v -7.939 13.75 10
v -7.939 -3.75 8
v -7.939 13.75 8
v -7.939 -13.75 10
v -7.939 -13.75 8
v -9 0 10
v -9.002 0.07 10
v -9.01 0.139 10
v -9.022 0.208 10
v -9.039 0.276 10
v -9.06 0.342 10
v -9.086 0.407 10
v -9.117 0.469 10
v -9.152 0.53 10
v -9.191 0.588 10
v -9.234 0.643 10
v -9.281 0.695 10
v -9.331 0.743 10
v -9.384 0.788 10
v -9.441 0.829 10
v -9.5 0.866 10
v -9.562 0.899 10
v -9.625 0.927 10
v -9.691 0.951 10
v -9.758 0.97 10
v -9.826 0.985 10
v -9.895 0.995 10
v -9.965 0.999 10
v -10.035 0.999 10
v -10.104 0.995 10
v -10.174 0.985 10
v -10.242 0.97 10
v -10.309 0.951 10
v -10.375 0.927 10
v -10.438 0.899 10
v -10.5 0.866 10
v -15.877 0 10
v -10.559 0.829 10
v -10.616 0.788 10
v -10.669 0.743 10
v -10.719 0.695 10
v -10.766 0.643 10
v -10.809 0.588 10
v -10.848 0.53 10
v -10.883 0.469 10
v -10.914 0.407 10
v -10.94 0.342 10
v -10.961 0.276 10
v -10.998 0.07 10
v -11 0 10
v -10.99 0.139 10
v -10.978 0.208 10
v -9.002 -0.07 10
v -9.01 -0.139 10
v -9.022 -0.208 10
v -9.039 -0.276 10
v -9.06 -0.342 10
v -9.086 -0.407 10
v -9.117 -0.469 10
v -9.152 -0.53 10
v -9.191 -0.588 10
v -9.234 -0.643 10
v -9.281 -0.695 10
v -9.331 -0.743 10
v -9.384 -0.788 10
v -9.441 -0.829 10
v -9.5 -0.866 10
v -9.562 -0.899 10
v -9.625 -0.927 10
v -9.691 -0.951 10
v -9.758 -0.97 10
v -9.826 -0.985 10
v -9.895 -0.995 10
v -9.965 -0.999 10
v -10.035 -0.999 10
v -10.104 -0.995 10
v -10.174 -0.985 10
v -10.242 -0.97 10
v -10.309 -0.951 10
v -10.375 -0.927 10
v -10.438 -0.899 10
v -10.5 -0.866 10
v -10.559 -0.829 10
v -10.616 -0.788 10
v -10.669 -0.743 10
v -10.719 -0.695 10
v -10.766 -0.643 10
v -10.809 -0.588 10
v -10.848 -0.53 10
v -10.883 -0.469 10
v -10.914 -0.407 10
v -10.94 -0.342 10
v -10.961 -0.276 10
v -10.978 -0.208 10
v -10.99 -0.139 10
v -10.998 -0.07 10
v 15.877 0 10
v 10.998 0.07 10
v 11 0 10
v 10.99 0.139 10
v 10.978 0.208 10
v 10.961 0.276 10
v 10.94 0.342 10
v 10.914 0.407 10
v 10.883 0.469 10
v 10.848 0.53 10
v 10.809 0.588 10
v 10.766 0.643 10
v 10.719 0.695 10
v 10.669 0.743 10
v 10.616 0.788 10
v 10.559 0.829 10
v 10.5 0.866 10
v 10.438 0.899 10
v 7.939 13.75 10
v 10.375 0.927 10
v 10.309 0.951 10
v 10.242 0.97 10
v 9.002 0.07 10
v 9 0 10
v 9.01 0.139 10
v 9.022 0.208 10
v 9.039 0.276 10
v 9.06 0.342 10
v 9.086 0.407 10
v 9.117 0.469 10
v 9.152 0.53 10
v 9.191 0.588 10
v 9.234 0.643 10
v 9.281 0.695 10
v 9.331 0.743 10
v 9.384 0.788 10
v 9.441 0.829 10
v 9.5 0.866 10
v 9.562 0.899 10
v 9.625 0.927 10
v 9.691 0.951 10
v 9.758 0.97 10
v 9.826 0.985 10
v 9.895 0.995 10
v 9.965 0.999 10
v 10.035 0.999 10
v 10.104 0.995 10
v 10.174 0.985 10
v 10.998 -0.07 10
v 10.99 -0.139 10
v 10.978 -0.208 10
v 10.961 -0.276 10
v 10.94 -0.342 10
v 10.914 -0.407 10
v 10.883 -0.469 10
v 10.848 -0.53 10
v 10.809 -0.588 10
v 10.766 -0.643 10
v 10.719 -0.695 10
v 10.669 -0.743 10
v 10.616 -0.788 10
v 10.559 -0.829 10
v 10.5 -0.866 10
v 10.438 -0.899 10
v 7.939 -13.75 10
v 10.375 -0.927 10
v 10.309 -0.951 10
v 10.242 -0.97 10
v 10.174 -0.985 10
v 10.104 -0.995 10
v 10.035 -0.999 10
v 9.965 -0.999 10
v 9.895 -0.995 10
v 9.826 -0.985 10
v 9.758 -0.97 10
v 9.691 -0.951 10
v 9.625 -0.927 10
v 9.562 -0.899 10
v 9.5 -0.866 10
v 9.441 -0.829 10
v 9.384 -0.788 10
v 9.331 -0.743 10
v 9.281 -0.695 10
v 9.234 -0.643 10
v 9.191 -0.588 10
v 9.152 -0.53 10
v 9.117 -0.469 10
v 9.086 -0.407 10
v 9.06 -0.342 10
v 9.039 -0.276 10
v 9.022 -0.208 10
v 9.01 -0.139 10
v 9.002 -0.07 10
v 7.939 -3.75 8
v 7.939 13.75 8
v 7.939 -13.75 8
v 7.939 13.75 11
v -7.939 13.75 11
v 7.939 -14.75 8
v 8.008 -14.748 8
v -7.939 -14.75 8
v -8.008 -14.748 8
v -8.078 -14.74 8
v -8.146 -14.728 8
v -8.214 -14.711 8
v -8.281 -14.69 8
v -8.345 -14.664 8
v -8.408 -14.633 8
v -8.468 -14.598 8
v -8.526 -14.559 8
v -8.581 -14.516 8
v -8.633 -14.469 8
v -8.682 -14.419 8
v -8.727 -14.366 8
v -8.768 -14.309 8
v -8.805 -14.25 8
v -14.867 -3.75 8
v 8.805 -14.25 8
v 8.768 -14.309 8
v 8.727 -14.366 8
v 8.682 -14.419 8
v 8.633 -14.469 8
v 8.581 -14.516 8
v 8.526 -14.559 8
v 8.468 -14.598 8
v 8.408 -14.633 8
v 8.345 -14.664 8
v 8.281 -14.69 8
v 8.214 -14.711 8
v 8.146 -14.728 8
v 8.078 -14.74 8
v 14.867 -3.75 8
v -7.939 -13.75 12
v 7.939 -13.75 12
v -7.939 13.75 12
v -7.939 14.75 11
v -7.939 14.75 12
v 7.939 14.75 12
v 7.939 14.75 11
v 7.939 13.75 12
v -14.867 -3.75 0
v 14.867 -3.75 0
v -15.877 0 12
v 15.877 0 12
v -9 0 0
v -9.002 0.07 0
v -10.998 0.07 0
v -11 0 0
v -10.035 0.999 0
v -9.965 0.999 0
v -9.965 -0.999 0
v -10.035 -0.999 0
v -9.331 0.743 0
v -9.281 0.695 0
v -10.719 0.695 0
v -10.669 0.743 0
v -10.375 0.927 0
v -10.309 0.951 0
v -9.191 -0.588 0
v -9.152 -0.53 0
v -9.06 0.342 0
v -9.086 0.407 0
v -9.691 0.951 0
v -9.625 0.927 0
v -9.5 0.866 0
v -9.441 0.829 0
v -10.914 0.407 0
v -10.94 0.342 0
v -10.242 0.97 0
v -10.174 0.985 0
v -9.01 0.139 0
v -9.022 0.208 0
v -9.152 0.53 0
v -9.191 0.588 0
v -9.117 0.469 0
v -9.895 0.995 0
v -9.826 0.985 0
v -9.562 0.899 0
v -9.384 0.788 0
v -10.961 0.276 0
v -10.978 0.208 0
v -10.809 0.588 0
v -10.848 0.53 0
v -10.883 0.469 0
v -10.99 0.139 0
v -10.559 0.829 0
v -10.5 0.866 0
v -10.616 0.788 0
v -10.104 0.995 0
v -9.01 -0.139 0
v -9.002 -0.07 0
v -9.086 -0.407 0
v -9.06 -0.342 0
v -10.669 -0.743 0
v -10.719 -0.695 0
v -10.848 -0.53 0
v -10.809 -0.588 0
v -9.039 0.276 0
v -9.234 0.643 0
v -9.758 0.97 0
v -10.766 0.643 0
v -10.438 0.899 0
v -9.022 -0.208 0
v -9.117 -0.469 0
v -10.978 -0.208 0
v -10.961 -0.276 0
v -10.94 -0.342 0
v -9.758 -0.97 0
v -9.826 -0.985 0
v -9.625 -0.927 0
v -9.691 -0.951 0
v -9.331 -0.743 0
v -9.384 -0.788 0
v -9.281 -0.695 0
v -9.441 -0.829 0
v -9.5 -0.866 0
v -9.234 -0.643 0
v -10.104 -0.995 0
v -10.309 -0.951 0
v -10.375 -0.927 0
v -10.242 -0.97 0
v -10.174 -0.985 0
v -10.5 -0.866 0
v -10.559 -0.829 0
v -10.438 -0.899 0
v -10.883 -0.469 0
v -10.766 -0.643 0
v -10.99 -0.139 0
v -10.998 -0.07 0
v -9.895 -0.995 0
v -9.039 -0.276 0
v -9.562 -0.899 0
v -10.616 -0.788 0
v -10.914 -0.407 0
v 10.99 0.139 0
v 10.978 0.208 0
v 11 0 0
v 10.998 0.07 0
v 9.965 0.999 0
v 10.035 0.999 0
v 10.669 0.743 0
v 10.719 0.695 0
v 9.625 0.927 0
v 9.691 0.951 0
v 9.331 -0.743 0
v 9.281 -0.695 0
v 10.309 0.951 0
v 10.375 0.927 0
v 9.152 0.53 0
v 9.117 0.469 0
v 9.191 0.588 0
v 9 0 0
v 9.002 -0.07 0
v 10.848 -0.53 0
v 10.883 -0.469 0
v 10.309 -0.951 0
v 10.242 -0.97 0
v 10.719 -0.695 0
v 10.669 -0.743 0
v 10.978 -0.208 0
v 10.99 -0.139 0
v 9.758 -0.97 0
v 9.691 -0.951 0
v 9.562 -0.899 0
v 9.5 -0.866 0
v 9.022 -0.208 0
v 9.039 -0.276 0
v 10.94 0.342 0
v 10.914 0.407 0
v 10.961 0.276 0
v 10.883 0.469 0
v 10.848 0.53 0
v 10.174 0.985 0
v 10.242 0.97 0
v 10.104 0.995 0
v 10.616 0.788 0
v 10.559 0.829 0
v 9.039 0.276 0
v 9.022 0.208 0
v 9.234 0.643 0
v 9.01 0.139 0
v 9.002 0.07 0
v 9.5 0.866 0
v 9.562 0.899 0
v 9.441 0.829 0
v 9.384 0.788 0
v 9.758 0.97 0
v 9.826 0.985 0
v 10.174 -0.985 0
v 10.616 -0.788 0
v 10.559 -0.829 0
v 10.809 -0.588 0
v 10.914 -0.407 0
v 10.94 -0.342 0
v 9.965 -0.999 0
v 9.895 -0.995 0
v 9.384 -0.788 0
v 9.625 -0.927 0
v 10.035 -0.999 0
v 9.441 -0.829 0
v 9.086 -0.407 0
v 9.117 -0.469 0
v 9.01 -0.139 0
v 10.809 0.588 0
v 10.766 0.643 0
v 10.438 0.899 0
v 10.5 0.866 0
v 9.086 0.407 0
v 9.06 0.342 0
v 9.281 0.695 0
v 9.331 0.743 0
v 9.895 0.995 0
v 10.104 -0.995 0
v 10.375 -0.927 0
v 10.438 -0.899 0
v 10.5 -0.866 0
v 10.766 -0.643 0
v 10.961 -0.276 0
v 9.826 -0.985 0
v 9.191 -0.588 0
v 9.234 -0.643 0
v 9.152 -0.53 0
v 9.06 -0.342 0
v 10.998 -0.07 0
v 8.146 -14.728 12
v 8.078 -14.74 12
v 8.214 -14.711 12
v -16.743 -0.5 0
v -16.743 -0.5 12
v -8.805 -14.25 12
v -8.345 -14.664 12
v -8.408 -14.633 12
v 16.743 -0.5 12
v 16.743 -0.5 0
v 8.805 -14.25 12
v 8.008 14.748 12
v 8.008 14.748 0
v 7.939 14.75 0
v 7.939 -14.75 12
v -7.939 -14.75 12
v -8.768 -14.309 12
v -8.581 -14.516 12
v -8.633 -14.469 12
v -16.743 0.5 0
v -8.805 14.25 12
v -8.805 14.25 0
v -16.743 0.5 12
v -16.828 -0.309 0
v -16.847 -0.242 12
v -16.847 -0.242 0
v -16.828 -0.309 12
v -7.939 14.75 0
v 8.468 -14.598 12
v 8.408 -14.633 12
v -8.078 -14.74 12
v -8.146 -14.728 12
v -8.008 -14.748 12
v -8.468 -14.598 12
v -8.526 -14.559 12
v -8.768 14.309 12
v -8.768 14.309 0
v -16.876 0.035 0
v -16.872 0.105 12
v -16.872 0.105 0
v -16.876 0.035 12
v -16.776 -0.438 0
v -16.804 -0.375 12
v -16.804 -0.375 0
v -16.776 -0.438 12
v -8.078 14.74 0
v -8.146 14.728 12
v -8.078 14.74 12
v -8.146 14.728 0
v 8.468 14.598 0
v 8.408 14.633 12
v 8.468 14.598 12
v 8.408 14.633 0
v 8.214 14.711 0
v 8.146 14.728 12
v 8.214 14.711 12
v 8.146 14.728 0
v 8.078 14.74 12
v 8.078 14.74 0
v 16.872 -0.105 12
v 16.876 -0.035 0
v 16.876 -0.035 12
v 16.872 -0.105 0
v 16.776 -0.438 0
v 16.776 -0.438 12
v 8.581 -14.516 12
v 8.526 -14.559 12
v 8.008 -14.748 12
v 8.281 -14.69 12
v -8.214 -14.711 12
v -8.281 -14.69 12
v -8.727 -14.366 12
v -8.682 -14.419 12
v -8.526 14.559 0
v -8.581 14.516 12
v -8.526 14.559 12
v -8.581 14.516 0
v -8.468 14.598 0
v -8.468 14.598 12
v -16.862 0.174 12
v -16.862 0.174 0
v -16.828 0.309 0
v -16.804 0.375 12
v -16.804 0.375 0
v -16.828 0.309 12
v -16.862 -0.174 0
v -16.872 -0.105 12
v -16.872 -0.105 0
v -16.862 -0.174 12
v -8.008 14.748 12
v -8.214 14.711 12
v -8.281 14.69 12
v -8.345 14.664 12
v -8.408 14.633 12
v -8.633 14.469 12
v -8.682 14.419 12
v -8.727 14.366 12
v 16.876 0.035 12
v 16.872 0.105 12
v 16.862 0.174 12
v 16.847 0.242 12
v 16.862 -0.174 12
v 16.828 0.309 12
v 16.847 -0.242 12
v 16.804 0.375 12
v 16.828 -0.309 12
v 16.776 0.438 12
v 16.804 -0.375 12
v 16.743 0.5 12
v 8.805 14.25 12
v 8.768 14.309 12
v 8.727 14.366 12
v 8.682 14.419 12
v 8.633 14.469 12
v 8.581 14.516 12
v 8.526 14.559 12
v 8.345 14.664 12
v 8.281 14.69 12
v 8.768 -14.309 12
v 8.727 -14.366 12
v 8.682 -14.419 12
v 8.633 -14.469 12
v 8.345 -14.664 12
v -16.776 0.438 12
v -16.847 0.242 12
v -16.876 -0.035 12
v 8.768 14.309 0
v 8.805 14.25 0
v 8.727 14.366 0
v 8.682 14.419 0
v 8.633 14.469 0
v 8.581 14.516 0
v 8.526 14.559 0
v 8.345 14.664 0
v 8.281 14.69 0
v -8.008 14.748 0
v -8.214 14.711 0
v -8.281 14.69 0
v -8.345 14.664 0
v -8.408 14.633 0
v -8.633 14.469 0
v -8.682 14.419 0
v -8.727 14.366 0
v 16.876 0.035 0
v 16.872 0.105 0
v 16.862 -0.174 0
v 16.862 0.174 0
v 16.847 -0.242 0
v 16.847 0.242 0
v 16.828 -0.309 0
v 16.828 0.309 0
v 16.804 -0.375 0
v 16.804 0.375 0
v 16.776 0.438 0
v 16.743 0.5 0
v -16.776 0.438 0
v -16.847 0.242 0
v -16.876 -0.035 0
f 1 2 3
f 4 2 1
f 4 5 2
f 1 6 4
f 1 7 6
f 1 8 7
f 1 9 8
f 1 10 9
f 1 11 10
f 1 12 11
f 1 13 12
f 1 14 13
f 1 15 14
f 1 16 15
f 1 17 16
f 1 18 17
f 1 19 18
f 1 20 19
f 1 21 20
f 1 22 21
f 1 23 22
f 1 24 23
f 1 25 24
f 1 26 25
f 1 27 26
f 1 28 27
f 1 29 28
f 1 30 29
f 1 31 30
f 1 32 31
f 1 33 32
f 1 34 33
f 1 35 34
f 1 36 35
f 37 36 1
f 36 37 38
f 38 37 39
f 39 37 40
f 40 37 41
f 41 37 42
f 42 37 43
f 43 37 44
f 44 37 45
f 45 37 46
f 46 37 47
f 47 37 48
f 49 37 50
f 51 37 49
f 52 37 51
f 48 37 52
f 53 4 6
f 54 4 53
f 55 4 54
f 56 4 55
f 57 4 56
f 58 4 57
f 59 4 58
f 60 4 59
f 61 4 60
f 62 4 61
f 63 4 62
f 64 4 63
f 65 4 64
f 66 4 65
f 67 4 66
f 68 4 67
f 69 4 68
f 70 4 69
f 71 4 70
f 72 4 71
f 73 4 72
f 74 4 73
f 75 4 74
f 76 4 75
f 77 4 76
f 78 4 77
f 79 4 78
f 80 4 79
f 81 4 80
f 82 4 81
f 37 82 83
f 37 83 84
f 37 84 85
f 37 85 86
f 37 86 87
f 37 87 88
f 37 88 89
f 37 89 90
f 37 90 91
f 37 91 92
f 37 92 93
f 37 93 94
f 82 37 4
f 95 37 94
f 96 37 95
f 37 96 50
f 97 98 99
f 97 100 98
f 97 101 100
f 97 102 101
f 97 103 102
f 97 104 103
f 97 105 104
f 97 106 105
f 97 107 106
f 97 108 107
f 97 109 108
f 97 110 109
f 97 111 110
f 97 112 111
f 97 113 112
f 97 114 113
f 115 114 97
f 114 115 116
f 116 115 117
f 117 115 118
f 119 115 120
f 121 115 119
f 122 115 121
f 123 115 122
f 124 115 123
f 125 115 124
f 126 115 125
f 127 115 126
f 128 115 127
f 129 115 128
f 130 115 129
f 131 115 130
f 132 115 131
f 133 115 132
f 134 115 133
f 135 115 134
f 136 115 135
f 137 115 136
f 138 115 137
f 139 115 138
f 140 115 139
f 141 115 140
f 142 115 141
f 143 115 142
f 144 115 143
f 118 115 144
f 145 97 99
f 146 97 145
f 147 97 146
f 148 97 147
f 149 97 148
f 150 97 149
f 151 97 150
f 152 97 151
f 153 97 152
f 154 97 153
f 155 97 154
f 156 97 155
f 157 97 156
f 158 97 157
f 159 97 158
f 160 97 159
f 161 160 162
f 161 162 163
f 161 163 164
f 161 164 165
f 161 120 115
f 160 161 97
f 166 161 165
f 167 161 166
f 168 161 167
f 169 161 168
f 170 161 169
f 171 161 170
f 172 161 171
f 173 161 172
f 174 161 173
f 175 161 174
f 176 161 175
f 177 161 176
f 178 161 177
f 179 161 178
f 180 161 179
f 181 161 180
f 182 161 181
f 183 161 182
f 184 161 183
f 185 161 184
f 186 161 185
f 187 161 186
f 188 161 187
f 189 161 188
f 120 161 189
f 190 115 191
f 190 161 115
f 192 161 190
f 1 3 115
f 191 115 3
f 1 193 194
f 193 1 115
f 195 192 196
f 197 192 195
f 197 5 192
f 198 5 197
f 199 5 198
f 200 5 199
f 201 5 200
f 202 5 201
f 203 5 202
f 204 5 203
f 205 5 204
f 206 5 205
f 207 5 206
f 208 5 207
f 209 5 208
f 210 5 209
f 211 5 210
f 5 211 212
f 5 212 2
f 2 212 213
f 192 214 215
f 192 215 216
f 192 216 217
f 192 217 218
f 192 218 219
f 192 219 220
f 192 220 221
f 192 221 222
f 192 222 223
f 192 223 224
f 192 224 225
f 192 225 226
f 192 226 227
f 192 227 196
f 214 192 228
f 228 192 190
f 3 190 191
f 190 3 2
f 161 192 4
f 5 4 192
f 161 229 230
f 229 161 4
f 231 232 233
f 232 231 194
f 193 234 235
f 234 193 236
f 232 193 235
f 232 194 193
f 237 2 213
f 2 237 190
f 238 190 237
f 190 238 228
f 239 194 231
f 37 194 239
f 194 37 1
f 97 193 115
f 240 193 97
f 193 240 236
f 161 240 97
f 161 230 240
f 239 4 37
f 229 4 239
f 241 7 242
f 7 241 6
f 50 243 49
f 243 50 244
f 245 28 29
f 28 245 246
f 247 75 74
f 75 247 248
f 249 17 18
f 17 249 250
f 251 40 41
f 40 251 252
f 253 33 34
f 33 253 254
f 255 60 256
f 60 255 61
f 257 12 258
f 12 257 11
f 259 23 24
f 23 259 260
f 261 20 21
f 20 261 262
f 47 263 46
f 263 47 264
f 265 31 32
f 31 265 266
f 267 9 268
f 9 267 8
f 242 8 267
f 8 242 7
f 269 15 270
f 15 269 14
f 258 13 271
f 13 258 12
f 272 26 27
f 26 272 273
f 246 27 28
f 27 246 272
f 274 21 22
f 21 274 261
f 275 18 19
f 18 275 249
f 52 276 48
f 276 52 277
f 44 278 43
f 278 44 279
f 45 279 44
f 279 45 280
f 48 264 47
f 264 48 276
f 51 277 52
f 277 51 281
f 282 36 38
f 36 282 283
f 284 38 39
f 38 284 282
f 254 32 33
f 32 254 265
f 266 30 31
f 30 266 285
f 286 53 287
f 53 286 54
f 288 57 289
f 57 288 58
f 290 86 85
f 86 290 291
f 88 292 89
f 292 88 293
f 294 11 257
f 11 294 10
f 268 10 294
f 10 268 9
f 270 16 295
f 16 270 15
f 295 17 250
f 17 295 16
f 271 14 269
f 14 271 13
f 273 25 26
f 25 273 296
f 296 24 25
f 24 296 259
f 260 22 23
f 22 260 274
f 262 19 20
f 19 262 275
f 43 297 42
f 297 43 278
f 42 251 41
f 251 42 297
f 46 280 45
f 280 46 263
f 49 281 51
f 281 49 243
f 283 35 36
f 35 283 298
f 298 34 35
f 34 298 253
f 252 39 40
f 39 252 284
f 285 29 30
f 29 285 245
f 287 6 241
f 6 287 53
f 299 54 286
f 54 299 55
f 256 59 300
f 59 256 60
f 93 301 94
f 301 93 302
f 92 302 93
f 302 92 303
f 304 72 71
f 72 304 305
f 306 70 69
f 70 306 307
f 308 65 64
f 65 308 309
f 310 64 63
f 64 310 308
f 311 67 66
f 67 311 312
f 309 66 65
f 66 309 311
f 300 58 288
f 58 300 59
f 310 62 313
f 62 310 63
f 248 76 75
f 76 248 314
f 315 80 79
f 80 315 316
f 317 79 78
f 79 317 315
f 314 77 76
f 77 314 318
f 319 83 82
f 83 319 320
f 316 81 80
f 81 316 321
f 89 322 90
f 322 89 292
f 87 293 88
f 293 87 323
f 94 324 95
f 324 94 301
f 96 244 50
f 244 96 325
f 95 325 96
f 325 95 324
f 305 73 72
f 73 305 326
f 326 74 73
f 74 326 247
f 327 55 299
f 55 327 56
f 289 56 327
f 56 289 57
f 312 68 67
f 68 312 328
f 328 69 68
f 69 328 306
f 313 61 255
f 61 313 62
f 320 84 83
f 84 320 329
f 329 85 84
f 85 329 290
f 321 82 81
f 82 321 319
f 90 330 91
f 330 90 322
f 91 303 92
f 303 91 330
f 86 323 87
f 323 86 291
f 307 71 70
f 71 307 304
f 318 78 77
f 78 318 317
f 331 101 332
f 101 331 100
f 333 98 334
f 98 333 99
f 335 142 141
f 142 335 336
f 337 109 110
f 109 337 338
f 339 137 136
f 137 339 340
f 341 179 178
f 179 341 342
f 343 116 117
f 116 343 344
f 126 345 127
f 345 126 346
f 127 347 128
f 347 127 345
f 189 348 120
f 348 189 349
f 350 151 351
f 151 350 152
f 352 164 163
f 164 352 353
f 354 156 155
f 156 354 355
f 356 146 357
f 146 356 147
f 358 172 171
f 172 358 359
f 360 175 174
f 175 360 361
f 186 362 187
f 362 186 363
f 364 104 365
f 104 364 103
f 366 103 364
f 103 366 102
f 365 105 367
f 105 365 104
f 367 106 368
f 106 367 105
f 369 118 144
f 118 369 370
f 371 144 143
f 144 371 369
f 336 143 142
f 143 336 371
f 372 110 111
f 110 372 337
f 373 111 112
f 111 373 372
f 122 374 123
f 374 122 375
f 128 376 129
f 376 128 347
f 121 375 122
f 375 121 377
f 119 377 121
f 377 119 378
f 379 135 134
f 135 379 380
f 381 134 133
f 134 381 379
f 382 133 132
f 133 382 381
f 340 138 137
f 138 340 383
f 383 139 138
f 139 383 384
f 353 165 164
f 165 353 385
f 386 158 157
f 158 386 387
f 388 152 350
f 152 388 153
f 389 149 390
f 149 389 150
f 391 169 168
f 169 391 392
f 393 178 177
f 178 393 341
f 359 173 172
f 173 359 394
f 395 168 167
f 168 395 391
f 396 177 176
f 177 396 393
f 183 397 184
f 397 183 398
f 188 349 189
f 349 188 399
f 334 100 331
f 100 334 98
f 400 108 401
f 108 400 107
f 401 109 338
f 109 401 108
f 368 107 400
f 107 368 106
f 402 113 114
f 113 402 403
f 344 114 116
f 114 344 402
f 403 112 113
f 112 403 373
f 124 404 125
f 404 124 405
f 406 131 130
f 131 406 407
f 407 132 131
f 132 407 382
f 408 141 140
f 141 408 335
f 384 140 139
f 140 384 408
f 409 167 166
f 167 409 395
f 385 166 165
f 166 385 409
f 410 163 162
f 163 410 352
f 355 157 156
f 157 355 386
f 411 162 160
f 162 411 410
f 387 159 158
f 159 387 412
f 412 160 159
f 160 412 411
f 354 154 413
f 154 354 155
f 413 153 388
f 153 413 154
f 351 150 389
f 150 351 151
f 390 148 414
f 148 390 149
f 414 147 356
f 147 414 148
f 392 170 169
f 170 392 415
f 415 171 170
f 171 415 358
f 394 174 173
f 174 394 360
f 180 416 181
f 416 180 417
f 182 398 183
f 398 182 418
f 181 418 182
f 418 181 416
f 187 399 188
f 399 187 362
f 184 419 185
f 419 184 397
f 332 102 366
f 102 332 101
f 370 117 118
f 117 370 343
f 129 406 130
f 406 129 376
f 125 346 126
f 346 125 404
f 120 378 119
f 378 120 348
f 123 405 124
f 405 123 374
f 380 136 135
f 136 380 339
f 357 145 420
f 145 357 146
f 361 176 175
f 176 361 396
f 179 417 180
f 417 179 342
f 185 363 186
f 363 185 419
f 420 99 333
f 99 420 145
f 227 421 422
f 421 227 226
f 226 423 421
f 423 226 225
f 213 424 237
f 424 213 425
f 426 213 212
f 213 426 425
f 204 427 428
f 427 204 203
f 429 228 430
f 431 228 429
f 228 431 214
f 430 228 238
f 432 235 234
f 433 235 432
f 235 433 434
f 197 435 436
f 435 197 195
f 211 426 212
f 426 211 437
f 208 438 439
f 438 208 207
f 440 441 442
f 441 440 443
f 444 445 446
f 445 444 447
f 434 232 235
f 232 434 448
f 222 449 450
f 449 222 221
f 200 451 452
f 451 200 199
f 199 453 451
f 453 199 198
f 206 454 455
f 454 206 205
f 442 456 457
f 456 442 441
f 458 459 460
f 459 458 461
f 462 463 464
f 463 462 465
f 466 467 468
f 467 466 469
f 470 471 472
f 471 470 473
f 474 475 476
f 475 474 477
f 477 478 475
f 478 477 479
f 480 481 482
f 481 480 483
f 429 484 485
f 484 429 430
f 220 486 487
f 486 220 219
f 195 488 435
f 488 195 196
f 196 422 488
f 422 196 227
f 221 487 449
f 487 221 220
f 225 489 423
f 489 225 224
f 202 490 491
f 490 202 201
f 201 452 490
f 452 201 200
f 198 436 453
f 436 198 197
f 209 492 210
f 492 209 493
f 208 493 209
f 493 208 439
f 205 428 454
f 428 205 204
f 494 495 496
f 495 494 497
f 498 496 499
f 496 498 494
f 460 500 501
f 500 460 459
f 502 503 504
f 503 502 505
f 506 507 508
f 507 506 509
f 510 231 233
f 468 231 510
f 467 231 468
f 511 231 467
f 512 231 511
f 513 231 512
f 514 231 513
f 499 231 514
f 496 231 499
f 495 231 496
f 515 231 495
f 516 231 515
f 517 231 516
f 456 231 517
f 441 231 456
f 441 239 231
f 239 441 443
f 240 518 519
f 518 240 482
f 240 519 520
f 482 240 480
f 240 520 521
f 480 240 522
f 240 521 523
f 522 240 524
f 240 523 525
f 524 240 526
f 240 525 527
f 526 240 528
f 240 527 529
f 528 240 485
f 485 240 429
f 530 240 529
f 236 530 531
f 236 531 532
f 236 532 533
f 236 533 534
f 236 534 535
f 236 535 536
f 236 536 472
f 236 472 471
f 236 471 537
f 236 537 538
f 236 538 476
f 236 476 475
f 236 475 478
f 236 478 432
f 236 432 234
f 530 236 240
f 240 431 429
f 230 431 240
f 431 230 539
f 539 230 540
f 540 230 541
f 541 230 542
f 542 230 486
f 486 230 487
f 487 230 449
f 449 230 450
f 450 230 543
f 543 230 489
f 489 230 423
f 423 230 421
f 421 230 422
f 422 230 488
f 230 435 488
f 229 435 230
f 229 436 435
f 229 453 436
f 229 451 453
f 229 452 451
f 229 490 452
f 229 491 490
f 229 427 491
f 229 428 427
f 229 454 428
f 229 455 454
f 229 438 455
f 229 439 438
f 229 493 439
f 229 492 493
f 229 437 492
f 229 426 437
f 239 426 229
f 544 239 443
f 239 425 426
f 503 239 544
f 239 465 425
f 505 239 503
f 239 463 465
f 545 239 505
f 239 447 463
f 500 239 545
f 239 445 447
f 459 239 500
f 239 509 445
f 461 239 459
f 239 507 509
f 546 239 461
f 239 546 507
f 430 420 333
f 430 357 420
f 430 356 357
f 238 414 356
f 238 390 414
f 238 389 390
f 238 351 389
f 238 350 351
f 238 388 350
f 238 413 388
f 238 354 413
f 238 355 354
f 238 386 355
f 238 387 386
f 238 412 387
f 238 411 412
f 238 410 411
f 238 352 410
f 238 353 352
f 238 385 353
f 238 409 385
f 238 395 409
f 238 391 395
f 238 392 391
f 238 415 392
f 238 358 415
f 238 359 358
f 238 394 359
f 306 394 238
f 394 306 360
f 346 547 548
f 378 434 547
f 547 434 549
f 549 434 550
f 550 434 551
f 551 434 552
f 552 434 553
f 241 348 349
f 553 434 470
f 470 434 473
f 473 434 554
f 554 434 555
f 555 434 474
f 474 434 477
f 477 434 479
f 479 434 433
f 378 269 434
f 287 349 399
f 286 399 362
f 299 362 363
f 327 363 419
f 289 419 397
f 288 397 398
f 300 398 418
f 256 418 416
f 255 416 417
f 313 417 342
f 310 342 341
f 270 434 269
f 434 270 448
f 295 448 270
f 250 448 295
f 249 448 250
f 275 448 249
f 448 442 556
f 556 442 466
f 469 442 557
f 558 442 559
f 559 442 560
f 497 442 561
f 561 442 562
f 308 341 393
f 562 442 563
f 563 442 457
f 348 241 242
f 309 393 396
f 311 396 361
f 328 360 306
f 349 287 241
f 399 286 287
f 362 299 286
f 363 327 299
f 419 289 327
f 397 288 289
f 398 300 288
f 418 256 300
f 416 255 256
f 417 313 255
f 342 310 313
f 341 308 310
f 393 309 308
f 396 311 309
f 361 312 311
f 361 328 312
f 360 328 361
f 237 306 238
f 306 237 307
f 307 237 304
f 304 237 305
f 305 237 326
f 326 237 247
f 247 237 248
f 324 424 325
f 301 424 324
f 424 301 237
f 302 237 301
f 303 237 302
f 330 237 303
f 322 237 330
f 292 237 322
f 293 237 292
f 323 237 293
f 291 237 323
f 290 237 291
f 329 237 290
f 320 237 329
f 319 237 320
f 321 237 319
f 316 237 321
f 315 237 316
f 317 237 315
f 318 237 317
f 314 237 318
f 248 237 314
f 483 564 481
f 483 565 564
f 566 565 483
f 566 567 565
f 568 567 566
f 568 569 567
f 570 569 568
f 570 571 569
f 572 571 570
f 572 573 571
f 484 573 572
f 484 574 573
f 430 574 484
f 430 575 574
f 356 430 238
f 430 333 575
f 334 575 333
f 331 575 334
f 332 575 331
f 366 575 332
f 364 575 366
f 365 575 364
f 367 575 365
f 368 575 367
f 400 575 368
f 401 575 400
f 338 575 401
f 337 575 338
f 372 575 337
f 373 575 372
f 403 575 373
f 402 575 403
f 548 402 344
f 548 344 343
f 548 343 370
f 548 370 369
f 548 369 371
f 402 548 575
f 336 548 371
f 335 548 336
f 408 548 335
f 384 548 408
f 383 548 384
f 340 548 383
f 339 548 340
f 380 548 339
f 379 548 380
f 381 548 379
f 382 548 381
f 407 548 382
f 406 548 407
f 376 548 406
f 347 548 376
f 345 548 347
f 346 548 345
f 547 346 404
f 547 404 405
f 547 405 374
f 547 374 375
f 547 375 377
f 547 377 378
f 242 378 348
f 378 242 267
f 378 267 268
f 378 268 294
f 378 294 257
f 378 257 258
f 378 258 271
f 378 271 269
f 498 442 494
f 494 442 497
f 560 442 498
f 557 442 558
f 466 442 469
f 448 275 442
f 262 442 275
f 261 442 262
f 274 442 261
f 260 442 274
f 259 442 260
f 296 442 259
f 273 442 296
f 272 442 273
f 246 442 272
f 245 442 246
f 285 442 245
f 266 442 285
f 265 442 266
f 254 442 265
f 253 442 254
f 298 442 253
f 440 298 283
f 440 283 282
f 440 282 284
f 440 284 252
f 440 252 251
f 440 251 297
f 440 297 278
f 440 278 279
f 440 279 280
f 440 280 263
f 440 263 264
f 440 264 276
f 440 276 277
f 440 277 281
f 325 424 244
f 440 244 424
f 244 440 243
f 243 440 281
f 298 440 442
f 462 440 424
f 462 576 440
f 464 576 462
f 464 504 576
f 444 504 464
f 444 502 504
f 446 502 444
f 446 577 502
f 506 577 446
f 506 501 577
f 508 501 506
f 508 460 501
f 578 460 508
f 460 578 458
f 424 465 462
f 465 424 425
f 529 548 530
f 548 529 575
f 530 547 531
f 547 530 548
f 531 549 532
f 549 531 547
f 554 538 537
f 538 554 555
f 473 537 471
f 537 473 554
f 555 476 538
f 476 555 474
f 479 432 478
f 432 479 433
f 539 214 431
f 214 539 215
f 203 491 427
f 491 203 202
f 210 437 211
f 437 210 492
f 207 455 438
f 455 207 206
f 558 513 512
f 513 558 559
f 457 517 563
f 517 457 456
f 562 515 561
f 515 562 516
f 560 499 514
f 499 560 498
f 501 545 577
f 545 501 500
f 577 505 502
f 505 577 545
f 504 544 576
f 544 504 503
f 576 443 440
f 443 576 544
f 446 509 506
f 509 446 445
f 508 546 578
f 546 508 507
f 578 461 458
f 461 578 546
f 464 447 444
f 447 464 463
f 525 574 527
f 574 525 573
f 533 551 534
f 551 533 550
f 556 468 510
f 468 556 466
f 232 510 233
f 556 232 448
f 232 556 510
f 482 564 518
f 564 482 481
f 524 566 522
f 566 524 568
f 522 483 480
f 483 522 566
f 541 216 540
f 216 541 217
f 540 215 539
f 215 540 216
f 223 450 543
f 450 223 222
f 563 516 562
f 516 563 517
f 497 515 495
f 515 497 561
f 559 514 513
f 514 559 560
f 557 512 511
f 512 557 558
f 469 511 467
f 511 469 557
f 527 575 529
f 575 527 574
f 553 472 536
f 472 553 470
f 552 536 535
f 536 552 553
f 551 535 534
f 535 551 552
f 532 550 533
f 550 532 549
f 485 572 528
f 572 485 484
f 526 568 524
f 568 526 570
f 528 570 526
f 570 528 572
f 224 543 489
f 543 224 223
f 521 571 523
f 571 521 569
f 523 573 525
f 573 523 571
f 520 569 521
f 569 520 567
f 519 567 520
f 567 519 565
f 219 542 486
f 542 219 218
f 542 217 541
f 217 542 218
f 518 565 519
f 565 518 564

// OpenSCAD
// zum module 1
// hexagonal module

$fn = 90;
drill = 2;

module holes() {
    translate( [ -10, 0, -1 ] ) cylinder( d = drill, h = 11 );
    translate( [ 10, 0, -1 ] ) cylinder( d = drill, h = 11 );
}

module hexagon( h = 27.5 ) {
    ri = h/2;
    ro = ri / ( 0.5 * sqrt(3) );
    polygon( [
        [ -ro, 0 ],
        [ -ro/2, ri ],
        [ ro/2, ri ],
        [ ro, 0 ],
        [ ro/2, -ri ],
        [ -ro/2, -ri ]
    ] );
}

module zum_hexmodule_clearance( h = 27.5 ) {
    ri = h/2;
    ro = ri / ( 0.5 * sqrt(3) );
    translate( [ -ro/2, -ri, -2 ] ) cube( [ ro, ri * 2, 2 ] );
    translate( [ -ro/2, ri/2, 1 ] ) cube( [ ro, ri, 8 ] );
    translate( [ -12/2, -h/2, -10 ] ) cube( [ 12, 8, 11 ] );
    translate( [ -40/2, -27.5/2-2, -12 ] ) cube( [ 40, 12, 10 ] );
}

module zum_hexmodule() {
    difference() {
        linear_extrude( height = 12 ) offset( r = 1 ) hexagon();
        translate( [ 0, 0, 12-2 ] ) {
            linear_extrude( height = 5 ) hexagon();
            zum_hexmodule_clearance();
        }
        holes();
    }
}

zum_hexmodule();
